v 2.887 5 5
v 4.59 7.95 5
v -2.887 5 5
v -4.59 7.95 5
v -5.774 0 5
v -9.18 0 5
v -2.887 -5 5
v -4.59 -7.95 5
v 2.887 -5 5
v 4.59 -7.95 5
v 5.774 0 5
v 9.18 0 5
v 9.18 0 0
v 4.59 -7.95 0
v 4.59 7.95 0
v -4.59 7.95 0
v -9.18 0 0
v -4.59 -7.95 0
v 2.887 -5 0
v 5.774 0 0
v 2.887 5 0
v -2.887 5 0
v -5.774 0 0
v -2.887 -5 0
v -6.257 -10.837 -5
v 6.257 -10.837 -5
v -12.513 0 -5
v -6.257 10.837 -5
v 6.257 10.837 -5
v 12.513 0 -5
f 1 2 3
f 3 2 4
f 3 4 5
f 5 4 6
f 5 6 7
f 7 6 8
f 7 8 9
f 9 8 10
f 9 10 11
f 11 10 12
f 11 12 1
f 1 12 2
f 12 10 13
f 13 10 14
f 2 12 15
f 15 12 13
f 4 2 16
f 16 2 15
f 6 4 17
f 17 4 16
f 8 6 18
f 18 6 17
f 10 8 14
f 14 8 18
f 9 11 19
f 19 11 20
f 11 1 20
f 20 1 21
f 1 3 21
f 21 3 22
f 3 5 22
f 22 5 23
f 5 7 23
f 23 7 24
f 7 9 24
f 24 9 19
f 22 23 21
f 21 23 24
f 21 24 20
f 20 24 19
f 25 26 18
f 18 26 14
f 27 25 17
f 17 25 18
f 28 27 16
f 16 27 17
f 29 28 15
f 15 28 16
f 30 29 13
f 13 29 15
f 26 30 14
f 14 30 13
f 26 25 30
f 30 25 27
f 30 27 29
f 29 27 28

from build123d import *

# Parameters (mm, degrees)
BOSS_EXTRUDE1_DEPTH = 5
BOSS_EXTRUDE2_DEPTH = 5
BOSS_EXTRUDE2_DRAFT = 30


with BuildPart() as part:
    # Sketch1 → Boss-Extrude1 (new body)
    with BuildSketch(Plane.XY):
        Polygon((9.17986928, 0), (4.58993464, 7.95), (-4.58993464, 7.95), (-9.17986928, 0), (-4.58993464, -7.95), (4.58993464, -7.95), align=None)
        Polygon((5.773502692, 0), (2.886751346, 5), (-2.886751346, 5), (-5.773502692, 0), (-2.886751346, -5), (2.886751346, -5), align=None, mode=Mode.SUBTRACT)
    extrude(amount=BOSS_EXTRUDE1_DEPTH)


with BuildPart() as boss_extrude2_tool:
    # Sketch1<2> → Boss-Extrude2 (with draft: the straight prism first)
    with BuildSketch(Plane.XY):
        Polygon((4.58993464, -7.95), (9.17986928, 0), (4.58993464, 7.95), (-4.58993464, 7.95), (-9.17986928, 0), (-4.58993464, -7.95), align=None)
    extrude(amount=-BOSS_EXTRUDE2_DEPTH)
    # Boss-Extrude2: the draft: its side faces are tilted about the plane it starts from
    boss_extrude2_sides = [boss_extrude2_tool.faces().sort_by_distance(p)[0] for p in [
        (6.88490196, -3.975, -2.5),
        (6.88490196, 3.975, -2.5),
        (0, 7.95, -2.5),
        (-6.88490196, 3.975, -2.5),
        (-6.88490196, -3.975, -2.5),
        (0, -7.95, -2.5),
    ]]
    draft(boss_extrude2_sides, Plane.XY, BOSS_EXTRUDE2_DRAFT)


with BuildPart() as part_1:
    add(part.part)

    # Boss-Extrude2: add boss_extrude2_tool
    add(boss_extrude2_tool.part)


solid = part_1.part
